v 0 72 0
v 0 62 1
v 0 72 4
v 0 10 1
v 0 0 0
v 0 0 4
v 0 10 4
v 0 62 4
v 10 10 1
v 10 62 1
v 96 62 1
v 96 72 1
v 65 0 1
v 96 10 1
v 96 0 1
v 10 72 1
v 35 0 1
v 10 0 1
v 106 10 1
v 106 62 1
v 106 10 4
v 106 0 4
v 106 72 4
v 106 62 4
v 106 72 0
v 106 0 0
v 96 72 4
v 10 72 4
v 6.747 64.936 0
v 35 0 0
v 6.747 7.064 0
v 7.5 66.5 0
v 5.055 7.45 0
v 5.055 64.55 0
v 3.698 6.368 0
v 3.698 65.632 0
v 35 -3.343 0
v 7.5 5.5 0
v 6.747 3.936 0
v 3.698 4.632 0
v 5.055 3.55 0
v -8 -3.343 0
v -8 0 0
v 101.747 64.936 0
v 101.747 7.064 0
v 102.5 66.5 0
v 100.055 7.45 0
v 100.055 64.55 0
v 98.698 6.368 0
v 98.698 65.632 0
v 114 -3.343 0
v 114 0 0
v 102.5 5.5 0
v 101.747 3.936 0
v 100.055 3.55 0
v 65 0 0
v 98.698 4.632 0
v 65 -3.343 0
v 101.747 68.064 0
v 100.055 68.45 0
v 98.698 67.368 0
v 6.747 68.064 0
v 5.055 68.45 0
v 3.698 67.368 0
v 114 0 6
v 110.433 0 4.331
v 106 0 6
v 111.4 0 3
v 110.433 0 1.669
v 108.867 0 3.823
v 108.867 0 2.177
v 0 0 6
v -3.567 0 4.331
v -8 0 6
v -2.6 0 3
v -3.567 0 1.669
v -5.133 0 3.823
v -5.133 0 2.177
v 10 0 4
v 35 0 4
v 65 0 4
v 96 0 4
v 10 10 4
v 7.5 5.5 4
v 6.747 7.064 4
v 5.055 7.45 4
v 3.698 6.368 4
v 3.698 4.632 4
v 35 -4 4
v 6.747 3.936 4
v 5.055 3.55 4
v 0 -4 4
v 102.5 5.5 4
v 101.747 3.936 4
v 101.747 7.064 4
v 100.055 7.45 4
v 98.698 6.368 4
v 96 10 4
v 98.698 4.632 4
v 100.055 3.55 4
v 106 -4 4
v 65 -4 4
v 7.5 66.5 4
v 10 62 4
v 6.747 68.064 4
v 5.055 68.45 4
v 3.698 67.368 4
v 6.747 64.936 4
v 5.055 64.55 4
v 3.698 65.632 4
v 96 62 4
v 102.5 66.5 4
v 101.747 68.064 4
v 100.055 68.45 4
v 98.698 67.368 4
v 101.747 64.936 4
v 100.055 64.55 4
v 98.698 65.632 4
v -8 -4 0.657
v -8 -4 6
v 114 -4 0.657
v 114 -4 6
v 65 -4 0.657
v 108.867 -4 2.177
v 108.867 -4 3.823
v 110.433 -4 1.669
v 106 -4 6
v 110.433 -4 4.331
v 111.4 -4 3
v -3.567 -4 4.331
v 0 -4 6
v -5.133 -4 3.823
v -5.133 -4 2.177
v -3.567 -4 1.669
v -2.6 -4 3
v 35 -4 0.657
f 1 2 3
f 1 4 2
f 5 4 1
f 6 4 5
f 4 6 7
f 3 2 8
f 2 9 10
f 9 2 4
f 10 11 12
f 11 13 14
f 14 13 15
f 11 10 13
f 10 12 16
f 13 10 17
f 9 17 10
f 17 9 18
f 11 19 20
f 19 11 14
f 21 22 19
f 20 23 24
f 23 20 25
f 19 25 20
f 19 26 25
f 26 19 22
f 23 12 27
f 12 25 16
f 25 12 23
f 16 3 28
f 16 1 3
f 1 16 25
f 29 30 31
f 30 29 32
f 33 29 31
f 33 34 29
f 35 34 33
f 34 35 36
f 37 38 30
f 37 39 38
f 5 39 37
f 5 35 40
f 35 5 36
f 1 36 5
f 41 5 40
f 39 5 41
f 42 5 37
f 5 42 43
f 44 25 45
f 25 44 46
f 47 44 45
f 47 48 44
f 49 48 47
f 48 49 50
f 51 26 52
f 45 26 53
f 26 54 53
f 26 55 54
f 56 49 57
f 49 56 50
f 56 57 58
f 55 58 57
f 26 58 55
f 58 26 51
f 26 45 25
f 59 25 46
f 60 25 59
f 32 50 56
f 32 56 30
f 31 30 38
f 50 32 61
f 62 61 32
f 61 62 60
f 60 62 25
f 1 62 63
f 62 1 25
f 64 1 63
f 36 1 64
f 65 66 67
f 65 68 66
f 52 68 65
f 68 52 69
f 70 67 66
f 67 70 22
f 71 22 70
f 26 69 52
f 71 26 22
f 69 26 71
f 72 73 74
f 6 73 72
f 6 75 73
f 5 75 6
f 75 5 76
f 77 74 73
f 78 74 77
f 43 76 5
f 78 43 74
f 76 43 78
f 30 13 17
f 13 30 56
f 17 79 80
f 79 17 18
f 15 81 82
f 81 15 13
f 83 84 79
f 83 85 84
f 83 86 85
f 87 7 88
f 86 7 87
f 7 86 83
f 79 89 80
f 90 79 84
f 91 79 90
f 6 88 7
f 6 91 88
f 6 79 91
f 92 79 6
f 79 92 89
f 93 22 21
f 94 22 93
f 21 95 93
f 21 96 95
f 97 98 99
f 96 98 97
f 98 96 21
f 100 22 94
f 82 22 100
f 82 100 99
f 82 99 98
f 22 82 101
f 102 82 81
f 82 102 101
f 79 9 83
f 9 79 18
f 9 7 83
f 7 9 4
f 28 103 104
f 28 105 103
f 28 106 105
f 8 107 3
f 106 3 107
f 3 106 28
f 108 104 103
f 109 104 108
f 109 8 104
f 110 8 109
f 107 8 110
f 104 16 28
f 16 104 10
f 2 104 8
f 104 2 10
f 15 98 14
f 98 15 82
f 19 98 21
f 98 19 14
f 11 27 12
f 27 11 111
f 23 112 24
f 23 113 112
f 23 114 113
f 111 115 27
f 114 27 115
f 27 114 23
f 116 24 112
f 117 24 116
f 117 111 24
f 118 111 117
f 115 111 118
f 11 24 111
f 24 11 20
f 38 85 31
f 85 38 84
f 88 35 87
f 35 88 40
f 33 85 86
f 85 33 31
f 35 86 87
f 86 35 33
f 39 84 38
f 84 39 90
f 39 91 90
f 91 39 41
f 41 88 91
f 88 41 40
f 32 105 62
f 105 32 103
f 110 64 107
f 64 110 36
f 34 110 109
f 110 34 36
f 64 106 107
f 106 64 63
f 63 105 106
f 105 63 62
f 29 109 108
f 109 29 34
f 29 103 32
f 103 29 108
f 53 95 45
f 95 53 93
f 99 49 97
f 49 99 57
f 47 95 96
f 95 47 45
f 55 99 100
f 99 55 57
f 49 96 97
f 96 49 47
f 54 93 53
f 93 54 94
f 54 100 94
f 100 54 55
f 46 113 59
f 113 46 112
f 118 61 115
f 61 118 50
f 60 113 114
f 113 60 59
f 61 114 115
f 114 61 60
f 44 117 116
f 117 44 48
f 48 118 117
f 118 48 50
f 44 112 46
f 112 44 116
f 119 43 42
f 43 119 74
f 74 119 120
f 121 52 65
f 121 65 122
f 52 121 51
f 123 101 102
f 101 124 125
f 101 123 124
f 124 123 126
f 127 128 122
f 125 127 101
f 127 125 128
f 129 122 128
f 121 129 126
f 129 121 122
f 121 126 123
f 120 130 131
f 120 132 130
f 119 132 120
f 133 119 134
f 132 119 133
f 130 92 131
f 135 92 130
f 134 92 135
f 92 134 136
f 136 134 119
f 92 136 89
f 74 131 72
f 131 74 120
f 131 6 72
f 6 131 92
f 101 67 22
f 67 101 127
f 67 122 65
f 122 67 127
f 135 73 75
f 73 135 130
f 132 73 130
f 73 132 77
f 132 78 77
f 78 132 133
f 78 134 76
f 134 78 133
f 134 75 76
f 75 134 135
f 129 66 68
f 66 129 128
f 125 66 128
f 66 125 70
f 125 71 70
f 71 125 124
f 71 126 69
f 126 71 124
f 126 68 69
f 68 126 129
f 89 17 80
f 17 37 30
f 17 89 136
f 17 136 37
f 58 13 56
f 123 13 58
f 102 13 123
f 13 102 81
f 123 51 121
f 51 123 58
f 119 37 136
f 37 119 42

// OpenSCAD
difference(){
union(){
cube([106,72,1]);
translate([0,0,0])cube([10,10,4]);
translate([0,62,0])cube([10,10,4]);
translate([96,0,0])cube([10,10,4]);
translate([96,62,0])cube([10,10,4]);
}


// Vzdalenos der 61mm a 95mm
	translate([5.5,5.5,-1]){
	translate([0,0,0])cylinder(r=2, h=6);
	translate([0,61,0])cylinder(r=2, h=6);
	translate([95,0,0])cylinder(r=2, h=6);
	translate([95,61,0])cylinder(r=2, h=6);
	}
}

difference(){
union(){
translate([-8,-4,0])cube([122,4,4]);
translate([-8,-4,0])cube([8,4,6]);
translate([-8+114,-4,0])cube([8,4,6]);
}

translate([-4,0,0]){
translate([0,0,3]) rotate([90,0,0]) cylinder(r=1.4, h=6);
translate([114,0,3]) rotate([90,0,0]) cylinder(r=1.4, h=6);
}
translate([35,-4,-1]) cube([30,4,7]);
translate([-8,-4,-5]) rotate([45,0,0]) cube([122,4,4]);
}

module rambo_mini(){
difference(){
// Velikost pcb 106 a 72
cube([106,72,1]);

	// Vzdalenos der 61mm a 95mm
	translate([5.5,5.5,-1]){
	translate([0,0,0])cylinder(r=1.4, h=3);
	translate([0,61,0])cylinder(r=1.4, h=3);
	translate([95,0,0])cylinder(r=1.4, h=3);
	translate([95,61,0])cylinder(r=1.4, h=3);
	}
}
}
